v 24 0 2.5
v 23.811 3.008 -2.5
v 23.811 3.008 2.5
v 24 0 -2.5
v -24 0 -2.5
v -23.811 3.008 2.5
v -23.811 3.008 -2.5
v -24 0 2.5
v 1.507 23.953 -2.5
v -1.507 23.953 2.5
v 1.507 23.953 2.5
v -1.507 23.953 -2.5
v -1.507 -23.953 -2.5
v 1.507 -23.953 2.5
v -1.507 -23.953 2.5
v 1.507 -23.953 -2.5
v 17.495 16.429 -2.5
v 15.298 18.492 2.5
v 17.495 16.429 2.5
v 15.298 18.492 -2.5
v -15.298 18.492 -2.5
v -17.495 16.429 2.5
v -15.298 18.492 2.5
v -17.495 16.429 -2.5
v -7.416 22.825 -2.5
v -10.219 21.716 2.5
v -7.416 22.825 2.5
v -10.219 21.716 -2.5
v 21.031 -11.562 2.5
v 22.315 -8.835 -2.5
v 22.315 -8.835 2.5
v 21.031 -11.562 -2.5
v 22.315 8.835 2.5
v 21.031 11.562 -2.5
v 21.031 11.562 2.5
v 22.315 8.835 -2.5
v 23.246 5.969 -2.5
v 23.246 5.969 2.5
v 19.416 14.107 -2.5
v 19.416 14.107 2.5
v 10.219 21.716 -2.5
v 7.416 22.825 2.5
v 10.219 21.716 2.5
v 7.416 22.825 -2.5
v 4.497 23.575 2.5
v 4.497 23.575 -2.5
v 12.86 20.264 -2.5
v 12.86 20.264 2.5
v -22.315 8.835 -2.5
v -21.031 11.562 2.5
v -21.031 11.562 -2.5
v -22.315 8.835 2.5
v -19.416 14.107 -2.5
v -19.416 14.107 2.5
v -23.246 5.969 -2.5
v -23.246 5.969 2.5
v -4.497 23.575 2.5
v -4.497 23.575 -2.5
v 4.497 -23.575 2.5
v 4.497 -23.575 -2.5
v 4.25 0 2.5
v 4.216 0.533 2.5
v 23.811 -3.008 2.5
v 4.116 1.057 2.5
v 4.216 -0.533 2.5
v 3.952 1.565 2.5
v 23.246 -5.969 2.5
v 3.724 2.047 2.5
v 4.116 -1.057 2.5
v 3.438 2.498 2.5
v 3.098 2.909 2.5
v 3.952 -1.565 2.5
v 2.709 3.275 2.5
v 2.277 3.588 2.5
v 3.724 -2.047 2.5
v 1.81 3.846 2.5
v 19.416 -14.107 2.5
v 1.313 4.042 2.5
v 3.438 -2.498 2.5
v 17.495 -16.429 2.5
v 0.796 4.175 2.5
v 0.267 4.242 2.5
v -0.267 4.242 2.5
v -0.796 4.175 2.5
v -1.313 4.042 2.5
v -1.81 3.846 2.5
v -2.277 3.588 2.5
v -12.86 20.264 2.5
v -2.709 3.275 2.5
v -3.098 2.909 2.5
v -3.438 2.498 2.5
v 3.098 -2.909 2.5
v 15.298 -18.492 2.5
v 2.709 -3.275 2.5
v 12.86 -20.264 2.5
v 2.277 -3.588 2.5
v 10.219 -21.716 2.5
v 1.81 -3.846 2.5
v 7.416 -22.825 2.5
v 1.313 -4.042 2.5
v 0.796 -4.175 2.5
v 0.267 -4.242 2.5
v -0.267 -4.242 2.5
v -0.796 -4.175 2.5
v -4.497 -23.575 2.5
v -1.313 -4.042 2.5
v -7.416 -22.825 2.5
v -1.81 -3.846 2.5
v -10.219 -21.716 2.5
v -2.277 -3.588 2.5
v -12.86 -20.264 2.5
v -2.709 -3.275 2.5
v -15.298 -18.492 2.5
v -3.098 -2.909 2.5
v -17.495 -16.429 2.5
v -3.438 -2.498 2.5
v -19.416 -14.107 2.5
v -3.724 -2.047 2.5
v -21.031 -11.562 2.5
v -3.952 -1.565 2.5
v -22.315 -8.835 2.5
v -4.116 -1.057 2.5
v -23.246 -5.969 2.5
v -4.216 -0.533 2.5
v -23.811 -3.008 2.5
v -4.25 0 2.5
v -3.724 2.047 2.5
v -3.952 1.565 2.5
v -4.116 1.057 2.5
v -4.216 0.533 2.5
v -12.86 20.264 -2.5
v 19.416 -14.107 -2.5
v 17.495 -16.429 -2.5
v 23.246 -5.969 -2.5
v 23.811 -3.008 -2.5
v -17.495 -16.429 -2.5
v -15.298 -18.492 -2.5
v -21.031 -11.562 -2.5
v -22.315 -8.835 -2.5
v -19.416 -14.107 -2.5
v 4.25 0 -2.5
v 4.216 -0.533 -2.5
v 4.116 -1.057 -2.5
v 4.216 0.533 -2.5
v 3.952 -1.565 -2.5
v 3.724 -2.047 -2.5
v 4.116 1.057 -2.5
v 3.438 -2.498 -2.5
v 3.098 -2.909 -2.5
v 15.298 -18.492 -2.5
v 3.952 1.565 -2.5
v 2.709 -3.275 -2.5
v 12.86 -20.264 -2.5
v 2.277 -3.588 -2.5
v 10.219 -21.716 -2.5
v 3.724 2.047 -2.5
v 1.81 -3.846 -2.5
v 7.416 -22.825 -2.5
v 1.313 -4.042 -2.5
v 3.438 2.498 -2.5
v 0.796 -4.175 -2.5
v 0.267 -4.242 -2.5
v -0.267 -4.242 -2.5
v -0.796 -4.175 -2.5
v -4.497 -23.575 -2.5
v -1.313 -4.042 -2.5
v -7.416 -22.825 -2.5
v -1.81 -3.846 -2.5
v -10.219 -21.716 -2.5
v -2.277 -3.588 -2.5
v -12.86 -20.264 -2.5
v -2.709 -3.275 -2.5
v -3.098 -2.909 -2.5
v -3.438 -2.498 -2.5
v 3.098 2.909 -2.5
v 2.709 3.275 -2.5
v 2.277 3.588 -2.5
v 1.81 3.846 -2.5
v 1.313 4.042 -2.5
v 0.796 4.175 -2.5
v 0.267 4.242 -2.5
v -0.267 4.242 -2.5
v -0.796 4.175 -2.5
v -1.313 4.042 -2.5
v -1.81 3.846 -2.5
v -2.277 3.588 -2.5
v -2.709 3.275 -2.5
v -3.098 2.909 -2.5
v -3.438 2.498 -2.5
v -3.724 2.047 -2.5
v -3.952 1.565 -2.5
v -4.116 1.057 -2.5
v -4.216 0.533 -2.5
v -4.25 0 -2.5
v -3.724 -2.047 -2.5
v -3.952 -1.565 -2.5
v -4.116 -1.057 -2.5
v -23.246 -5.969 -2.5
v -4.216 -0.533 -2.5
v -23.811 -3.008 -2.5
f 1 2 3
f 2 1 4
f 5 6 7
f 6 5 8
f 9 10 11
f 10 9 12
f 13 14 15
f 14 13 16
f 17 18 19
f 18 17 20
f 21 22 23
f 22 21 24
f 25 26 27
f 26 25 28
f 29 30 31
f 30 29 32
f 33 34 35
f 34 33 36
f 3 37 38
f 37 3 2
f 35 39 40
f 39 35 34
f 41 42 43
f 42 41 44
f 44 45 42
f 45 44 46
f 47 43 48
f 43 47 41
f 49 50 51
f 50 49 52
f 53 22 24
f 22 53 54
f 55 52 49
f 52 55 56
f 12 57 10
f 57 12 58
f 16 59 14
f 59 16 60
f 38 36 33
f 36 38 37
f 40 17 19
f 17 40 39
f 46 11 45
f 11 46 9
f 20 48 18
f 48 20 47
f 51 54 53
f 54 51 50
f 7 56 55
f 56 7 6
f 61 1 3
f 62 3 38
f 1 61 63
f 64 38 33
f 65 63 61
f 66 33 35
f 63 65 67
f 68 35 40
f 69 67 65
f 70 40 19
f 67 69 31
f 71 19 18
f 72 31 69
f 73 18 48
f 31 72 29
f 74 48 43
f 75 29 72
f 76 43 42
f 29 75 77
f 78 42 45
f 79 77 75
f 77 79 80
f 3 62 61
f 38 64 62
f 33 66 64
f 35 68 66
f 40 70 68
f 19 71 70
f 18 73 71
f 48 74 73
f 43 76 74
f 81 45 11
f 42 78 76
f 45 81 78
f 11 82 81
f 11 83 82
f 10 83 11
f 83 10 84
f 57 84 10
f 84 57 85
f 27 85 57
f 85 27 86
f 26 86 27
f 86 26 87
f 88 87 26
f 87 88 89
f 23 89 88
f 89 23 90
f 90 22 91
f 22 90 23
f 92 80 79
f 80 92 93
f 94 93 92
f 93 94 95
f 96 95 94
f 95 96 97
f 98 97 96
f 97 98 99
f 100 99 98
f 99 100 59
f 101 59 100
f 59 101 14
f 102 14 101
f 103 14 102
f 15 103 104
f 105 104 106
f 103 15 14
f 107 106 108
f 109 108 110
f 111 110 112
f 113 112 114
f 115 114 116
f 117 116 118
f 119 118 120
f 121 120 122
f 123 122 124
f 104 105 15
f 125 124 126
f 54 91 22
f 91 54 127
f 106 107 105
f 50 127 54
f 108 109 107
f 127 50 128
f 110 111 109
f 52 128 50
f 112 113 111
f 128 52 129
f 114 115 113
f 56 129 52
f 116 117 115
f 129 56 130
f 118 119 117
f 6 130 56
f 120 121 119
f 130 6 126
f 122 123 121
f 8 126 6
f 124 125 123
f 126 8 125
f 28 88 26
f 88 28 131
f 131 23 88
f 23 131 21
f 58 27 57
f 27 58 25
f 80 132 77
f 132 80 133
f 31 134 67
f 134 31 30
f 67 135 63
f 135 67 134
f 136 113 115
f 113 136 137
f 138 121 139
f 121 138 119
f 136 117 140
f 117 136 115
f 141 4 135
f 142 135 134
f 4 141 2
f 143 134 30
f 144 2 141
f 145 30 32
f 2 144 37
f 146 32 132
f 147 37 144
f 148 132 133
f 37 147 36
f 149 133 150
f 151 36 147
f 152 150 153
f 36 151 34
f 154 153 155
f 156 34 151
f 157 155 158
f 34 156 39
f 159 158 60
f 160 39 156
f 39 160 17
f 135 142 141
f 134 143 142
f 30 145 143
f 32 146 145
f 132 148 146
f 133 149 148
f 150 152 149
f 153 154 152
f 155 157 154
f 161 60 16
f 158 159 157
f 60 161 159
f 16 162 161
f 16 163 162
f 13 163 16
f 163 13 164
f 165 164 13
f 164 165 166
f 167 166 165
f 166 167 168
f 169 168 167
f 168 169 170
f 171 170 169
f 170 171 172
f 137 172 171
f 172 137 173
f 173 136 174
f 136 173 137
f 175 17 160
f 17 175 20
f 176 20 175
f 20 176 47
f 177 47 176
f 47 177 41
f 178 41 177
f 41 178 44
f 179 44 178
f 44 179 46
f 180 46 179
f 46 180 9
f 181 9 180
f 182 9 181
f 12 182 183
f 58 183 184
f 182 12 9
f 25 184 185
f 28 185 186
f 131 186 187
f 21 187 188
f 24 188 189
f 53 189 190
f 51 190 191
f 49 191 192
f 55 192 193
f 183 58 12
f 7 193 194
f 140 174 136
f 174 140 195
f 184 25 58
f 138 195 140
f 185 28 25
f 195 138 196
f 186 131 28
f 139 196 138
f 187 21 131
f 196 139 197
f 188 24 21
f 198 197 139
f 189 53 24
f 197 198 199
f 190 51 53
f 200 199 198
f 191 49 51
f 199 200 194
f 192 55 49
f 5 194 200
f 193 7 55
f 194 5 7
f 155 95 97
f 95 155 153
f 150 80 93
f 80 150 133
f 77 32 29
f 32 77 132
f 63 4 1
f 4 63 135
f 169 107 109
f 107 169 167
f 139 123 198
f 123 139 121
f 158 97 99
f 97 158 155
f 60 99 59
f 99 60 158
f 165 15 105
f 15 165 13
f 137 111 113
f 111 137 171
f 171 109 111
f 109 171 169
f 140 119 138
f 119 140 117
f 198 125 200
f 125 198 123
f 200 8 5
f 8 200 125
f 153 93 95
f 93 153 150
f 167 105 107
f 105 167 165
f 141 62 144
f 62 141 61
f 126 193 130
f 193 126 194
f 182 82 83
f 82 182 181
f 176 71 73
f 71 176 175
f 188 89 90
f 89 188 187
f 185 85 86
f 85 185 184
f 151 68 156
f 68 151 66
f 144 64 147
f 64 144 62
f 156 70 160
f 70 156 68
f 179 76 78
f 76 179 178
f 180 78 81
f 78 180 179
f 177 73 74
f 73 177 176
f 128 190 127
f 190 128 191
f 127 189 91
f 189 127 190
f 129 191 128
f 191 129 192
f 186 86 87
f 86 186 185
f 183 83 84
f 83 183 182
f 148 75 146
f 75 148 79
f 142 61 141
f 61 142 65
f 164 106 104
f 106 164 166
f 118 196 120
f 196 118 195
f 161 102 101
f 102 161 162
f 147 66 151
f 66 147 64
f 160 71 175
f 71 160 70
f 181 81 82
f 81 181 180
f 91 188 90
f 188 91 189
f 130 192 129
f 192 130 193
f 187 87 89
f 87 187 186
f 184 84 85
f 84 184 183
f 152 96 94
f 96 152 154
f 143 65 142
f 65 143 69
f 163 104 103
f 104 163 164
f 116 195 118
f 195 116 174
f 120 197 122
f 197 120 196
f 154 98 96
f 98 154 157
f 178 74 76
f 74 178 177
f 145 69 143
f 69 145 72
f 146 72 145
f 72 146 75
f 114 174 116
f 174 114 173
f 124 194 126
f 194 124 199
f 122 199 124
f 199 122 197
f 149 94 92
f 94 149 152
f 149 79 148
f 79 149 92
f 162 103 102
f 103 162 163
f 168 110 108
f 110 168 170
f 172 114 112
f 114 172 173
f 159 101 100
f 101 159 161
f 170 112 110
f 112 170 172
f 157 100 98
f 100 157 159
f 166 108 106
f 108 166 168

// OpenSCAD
$fn = 50;


difference() {
	union() {
		translate(v = [0, 0, -2.5000000000]) {
			cylinder(h = 5, r = 24.0000000000);
		}
	}
	union() {
		translate(v = [0, 0, -100.0000000000]) {
			cylinder(h = 200, r = 4.2500000000);
		}
	}
}
